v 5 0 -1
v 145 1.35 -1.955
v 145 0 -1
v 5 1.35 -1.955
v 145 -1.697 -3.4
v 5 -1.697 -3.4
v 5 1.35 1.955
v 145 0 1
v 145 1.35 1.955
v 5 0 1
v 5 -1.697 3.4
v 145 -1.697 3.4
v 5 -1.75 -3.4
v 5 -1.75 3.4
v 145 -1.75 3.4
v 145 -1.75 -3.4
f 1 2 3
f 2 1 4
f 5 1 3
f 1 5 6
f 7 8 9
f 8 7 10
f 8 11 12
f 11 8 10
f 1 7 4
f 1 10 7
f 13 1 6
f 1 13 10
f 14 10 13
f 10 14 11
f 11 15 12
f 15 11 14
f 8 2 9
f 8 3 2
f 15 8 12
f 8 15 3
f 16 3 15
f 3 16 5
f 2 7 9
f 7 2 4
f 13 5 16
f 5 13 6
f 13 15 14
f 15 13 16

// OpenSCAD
difference() {
    translate([5,-2.6+0.85,-3.4]) cube([140,3.1,6.8]);
    translate([0,0,-1]) rotate([-70.53/2,0,0]) translate([0,0,-1.5]) pyramidSide();
    translate([0,0,1]) rotate([70.53/2,0,0]) translate([0,0,1.5]) pyramidSide();
}



//translate([0,0,-1]) rotate([-70.53/2,0,0]) translate([0,0,-1.5]) pyramidSide();
//translate([0,0,1]) rotate([70.53/2,0,0]) translate([0,0,1.5]) pyramidSide();



module pyramidSide() {
    difference() {
        translate([0,0,-1.5])cube([150,150,3]);
        translate([150,0,-2.5]) rotate([0,0,30]) cube([150,1500,5]);
        translate([0,0,-2.5]) rotate([0,0,-30]) translate([-150,0,0]) cube([150,1500,5]); 
    }
}
